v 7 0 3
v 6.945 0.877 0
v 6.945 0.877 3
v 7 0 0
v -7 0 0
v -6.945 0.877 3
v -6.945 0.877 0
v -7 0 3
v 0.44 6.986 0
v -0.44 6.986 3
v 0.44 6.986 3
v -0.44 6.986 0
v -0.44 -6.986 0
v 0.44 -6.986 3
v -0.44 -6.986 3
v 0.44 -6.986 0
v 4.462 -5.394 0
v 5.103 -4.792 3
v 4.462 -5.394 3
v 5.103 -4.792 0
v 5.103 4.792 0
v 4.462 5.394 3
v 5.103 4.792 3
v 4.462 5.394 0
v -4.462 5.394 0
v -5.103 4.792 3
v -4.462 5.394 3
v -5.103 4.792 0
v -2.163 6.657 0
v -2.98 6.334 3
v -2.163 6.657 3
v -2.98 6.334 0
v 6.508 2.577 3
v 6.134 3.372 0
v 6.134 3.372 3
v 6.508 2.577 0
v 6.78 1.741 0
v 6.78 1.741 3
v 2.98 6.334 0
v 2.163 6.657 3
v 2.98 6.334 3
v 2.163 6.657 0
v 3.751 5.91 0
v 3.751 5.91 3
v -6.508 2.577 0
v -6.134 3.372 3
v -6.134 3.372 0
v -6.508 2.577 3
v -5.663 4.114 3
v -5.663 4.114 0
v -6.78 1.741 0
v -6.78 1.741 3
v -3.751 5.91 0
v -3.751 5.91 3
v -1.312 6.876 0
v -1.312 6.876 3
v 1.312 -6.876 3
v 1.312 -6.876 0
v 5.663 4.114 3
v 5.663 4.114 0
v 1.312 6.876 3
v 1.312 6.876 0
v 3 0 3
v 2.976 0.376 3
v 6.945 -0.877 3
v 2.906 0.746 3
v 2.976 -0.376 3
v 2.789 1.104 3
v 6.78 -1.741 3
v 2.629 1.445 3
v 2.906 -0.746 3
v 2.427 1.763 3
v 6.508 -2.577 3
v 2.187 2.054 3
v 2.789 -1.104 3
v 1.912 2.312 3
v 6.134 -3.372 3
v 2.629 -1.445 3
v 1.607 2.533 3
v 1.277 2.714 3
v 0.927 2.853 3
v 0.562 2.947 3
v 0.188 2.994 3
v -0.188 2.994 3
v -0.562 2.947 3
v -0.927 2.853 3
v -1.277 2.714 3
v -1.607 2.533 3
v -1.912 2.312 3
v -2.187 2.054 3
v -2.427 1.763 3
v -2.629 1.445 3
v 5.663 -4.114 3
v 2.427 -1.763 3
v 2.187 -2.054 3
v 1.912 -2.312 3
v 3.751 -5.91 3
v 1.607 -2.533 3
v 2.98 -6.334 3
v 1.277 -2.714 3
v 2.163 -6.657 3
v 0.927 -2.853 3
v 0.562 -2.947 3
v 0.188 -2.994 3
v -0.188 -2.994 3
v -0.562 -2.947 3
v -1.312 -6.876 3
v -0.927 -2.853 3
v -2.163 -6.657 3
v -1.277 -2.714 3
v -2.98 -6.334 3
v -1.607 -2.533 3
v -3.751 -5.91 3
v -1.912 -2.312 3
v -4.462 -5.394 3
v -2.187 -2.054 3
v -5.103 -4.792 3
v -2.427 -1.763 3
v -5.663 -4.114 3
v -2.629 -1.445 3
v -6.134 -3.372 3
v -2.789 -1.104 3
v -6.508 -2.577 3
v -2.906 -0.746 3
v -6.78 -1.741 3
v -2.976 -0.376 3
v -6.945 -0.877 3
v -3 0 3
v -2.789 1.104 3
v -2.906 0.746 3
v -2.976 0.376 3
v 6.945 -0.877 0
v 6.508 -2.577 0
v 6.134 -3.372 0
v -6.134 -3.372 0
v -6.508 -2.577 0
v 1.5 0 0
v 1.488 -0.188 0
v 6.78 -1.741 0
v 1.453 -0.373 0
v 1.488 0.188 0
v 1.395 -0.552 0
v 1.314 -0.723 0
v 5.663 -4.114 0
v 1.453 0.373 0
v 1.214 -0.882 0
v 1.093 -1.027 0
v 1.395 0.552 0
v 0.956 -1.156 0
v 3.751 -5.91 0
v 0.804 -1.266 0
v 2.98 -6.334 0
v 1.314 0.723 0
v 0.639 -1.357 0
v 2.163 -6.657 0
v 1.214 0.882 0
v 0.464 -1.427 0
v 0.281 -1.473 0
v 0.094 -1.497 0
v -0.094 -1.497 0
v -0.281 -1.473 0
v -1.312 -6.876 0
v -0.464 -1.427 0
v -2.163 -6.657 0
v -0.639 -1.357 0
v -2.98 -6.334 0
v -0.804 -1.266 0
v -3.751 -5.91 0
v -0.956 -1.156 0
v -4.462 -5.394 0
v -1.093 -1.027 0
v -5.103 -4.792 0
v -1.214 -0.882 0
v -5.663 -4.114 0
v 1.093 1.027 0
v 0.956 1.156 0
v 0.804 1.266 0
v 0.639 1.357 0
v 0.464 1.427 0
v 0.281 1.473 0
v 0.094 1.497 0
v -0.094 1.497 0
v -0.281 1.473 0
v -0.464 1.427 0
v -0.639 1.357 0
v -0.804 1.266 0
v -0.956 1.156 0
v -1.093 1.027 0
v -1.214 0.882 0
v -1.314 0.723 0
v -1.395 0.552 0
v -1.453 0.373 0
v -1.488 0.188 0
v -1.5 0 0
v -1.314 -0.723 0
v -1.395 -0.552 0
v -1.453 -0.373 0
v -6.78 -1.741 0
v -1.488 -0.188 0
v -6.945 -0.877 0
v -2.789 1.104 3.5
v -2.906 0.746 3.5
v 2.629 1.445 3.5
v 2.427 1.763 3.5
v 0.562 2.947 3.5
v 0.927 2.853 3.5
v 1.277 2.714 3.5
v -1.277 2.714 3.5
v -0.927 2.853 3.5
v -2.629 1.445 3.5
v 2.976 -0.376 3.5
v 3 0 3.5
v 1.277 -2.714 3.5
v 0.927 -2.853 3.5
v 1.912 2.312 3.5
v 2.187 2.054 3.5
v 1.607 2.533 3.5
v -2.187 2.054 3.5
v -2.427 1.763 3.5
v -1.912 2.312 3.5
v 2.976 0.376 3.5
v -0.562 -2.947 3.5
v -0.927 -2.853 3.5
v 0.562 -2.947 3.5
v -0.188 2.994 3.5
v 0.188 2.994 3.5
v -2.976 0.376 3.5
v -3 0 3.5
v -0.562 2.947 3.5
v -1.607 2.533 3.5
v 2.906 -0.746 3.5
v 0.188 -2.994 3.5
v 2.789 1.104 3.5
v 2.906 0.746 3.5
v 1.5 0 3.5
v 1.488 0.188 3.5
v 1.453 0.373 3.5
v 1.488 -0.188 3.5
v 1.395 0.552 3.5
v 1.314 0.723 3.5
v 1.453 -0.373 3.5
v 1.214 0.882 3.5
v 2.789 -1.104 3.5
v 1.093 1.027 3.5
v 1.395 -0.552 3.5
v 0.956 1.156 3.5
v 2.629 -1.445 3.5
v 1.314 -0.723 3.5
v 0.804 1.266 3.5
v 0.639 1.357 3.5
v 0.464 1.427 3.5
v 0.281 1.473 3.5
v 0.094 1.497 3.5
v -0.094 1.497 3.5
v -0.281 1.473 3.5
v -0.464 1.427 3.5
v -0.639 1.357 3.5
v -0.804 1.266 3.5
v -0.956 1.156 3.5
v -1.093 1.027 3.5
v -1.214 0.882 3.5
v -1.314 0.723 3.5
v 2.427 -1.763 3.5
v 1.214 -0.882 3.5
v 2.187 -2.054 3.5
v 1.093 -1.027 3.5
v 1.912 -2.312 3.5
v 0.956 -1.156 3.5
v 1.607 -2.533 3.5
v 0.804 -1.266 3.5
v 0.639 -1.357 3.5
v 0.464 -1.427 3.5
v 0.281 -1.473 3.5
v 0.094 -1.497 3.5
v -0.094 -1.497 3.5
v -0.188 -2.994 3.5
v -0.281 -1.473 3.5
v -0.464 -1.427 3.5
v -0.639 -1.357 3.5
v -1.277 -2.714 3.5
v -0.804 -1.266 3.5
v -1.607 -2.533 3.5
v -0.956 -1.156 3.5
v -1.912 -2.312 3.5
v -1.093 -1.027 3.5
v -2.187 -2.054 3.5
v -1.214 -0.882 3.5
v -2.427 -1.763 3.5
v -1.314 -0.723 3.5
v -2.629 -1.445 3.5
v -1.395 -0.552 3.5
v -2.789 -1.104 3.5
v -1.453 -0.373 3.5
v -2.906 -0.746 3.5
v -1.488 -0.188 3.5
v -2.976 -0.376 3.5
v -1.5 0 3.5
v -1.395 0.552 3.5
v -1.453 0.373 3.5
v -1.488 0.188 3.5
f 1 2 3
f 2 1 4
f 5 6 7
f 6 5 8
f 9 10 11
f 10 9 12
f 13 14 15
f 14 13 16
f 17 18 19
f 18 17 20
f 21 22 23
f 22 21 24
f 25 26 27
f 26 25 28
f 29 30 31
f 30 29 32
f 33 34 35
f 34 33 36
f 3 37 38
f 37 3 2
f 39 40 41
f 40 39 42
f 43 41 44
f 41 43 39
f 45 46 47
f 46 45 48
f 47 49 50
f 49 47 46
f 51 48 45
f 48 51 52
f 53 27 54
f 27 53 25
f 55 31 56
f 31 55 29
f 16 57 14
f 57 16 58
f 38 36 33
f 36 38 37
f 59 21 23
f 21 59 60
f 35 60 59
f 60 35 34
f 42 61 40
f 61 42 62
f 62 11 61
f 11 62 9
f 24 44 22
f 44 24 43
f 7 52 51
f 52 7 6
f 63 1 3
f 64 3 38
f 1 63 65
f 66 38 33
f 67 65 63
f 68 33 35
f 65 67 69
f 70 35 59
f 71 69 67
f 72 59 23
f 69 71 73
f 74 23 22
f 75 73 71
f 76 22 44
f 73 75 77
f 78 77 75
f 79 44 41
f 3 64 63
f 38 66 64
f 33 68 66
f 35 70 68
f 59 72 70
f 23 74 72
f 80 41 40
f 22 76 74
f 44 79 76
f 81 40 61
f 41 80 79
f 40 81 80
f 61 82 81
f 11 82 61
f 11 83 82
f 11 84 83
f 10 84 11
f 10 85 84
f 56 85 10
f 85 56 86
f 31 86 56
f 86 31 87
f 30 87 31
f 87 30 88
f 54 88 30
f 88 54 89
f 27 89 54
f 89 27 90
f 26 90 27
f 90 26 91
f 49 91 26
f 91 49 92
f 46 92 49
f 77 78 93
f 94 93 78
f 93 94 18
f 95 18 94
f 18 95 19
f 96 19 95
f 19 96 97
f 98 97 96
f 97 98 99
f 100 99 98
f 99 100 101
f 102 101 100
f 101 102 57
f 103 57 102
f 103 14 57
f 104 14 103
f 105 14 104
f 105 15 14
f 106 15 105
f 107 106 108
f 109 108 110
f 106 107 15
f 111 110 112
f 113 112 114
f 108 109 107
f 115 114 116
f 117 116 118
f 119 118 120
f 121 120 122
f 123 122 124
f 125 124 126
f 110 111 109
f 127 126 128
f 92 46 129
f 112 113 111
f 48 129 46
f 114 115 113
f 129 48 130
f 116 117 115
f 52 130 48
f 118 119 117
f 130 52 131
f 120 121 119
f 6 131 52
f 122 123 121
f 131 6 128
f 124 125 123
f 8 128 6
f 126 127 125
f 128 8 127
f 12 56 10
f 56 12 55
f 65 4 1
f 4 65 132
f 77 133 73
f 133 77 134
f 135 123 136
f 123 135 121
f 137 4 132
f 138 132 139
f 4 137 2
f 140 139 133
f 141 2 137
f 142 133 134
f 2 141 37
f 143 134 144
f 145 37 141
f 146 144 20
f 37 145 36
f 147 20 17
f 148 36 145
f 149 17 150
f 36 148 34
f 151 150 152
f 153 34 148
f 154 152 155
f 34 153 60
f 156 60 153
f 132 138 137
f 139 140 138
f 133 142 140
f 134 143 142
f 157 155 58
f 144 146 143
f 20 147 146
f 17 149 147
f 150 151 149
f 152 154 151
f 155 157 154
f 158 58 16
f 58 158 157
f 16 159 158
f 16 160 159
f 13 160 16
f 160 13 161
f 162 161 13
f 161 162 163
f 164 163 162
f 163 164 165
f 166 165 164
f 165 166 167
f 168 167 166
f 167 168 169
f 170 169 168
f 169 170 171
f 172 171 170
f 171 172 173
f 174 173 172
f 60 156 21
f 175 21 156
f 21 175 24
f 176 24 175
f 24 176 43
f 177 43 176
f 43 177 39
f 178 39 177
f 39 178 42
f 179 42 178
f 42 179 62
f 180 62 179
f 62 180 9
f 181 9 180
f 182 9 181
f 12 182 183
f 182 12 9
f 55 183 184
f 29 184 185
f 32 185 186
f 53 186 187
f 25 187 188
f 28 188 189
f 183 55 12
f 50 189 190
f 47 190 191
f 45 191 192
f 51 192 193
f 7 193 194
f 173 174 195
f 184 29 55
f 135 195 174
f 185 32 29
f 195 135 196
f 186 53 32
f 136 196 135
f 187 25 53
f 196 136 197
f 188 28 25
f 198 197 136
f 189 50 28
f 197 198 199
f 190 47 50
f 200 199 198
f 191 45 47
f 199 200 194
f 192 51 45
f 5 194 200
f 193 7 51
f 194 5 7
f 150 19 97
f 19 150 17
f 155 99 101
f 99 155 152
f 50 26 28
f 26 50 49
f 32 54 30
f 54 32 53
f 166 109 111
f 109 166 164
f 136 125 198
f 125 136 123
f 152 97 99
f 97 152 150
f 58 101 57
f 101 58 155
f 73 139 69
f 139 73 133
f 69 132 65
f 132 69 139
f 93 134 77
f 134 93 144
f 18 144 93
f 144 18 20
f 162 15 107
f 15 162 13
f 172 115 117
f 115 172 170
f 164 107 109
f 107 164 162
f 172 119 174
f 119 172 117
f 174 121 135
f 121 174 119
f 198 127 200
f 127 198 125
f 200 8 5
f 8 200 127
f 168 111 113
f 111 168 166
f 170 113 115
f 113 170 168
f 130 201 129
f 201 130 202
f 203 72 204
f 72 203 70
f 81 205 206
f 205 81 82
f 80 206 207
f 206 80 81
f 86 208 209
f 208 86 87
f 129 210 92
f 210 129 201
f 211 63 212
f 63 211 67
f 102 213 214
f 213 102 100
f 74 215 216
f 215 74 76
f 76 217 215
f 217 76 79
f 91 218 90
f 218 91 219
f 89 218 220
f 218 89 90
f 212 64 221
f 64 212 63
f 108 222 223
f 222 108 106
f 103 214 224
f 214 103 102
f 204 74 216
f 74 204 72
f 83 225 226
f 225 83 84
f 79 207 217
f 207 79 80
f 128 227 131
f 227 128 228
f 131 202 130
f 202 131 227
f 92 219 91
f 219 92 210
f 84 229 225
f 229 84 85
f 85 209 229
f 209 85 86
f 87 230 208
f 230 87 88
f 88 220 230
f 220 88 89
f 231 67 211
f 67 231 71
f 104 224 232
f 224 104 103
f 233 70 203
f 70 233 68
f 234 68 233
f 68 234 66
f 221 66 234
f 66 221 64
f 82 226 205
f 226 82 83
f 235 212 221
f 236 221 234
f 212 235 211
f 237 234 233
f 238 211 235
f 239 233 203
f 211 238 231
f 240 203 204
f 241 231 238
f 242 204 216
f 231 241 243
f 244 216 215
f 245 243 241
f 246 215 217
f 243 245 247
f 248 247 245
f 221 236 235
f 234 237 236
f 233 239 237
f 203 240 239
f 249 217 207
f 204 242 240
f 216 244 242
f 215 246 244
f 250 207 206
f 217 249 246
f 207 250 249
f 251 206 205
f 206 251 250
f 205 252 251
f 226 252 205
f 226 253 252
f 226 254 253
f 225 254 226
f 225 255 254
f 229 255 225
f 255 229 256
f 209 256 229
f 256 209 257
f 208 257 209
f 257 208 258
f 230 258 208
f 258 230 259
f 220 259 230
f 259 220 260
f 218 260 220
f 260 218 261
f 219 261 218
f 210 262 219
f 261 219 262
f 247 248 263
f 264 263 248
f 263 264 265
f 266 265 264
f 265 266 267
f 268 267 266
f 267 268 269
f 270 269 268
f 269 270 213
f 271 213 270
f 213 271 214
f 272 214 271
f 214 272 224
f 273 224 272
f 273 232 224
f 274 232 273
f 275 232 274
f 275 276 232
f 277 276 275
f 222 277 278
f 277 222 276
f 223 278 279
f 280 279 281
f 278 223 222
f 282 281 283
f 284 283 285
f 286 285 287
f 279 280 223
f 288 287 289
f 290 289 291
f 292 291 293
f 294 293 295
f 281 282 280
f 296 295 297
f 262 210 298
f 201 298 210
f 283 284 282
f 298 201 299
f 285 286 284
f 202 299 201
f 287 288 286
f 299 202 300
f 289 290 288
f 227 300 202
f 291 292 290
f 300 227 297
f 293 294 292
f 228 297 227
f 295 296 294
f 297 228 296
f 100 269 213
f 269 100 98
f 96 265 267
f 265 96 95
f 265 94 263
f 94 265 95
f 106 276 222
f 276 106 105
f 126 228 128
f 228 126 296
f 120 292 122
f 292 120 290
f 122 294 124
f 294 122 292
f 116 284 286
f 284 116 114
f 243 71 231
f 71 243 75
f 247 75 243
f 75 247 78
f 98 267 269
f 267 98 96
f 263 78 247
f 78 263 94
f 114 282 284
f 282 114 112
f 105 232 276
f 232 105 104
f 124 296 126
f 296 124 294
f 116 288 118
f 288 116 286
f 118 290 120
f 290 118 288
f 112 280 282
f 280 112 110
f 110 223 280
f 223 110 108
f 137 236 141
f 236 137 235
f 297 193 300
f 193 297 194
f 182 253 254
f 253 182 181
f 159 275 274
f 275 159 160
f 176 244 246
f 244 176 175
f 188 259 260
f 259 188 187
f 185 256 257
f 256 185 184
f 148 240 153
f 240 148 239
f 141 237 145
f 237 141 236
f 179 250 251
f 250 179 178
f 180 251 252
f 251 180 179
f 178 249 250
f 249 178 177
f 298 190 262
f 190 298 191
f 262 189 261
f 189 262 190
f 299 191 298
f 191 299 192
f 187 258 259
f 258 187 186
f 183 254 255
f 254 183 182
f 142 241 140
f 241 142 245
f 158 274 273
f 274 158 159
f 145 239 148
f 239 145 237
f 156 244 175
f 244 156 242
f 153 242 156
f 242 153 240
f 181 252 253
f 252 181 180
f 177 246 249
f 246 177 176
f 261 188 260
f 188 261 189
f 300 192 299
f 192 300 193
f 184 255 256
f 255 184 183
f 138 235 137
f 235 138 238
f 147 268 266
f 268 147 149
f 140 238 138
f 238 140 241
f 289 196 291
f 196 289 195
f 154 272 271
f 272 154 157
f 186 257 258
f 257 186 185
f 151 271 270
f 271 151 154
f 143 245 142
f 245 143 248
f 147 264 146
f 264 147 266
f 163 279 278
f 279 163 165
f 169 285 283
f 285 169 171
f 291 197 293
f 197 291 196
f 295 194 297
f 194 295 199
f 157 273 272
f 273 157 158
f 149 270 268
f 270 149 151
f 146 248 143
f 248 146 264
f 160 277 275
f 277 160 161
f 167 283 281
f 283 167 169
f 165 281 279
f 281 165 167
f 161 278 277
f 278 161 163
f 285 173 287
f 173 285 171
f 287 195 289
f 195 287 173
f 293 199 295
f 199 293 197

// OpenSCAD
$fn = 50;


difference() {
	union() {
		translate(v = [0, 0, 0]) {
			rotate(a = [0, 0, 0]) {
				cylinder(h = 3, r = 7.0000000000);
			}
		}
		translate(v = [0, 0, 0]) {
			rotate(a = [0, 0, 0]) {
				cylinder(h = 3.5000000000, r = 3.0000000000);
			}
		}
	}
	union() {
		translate(v = [0, 0, -125.0000000000]) {
			rotate(a = [0, 0, 0]) {
				cylinder(h = 250, r = 1.5000000000);
			}
		}
	}
}
